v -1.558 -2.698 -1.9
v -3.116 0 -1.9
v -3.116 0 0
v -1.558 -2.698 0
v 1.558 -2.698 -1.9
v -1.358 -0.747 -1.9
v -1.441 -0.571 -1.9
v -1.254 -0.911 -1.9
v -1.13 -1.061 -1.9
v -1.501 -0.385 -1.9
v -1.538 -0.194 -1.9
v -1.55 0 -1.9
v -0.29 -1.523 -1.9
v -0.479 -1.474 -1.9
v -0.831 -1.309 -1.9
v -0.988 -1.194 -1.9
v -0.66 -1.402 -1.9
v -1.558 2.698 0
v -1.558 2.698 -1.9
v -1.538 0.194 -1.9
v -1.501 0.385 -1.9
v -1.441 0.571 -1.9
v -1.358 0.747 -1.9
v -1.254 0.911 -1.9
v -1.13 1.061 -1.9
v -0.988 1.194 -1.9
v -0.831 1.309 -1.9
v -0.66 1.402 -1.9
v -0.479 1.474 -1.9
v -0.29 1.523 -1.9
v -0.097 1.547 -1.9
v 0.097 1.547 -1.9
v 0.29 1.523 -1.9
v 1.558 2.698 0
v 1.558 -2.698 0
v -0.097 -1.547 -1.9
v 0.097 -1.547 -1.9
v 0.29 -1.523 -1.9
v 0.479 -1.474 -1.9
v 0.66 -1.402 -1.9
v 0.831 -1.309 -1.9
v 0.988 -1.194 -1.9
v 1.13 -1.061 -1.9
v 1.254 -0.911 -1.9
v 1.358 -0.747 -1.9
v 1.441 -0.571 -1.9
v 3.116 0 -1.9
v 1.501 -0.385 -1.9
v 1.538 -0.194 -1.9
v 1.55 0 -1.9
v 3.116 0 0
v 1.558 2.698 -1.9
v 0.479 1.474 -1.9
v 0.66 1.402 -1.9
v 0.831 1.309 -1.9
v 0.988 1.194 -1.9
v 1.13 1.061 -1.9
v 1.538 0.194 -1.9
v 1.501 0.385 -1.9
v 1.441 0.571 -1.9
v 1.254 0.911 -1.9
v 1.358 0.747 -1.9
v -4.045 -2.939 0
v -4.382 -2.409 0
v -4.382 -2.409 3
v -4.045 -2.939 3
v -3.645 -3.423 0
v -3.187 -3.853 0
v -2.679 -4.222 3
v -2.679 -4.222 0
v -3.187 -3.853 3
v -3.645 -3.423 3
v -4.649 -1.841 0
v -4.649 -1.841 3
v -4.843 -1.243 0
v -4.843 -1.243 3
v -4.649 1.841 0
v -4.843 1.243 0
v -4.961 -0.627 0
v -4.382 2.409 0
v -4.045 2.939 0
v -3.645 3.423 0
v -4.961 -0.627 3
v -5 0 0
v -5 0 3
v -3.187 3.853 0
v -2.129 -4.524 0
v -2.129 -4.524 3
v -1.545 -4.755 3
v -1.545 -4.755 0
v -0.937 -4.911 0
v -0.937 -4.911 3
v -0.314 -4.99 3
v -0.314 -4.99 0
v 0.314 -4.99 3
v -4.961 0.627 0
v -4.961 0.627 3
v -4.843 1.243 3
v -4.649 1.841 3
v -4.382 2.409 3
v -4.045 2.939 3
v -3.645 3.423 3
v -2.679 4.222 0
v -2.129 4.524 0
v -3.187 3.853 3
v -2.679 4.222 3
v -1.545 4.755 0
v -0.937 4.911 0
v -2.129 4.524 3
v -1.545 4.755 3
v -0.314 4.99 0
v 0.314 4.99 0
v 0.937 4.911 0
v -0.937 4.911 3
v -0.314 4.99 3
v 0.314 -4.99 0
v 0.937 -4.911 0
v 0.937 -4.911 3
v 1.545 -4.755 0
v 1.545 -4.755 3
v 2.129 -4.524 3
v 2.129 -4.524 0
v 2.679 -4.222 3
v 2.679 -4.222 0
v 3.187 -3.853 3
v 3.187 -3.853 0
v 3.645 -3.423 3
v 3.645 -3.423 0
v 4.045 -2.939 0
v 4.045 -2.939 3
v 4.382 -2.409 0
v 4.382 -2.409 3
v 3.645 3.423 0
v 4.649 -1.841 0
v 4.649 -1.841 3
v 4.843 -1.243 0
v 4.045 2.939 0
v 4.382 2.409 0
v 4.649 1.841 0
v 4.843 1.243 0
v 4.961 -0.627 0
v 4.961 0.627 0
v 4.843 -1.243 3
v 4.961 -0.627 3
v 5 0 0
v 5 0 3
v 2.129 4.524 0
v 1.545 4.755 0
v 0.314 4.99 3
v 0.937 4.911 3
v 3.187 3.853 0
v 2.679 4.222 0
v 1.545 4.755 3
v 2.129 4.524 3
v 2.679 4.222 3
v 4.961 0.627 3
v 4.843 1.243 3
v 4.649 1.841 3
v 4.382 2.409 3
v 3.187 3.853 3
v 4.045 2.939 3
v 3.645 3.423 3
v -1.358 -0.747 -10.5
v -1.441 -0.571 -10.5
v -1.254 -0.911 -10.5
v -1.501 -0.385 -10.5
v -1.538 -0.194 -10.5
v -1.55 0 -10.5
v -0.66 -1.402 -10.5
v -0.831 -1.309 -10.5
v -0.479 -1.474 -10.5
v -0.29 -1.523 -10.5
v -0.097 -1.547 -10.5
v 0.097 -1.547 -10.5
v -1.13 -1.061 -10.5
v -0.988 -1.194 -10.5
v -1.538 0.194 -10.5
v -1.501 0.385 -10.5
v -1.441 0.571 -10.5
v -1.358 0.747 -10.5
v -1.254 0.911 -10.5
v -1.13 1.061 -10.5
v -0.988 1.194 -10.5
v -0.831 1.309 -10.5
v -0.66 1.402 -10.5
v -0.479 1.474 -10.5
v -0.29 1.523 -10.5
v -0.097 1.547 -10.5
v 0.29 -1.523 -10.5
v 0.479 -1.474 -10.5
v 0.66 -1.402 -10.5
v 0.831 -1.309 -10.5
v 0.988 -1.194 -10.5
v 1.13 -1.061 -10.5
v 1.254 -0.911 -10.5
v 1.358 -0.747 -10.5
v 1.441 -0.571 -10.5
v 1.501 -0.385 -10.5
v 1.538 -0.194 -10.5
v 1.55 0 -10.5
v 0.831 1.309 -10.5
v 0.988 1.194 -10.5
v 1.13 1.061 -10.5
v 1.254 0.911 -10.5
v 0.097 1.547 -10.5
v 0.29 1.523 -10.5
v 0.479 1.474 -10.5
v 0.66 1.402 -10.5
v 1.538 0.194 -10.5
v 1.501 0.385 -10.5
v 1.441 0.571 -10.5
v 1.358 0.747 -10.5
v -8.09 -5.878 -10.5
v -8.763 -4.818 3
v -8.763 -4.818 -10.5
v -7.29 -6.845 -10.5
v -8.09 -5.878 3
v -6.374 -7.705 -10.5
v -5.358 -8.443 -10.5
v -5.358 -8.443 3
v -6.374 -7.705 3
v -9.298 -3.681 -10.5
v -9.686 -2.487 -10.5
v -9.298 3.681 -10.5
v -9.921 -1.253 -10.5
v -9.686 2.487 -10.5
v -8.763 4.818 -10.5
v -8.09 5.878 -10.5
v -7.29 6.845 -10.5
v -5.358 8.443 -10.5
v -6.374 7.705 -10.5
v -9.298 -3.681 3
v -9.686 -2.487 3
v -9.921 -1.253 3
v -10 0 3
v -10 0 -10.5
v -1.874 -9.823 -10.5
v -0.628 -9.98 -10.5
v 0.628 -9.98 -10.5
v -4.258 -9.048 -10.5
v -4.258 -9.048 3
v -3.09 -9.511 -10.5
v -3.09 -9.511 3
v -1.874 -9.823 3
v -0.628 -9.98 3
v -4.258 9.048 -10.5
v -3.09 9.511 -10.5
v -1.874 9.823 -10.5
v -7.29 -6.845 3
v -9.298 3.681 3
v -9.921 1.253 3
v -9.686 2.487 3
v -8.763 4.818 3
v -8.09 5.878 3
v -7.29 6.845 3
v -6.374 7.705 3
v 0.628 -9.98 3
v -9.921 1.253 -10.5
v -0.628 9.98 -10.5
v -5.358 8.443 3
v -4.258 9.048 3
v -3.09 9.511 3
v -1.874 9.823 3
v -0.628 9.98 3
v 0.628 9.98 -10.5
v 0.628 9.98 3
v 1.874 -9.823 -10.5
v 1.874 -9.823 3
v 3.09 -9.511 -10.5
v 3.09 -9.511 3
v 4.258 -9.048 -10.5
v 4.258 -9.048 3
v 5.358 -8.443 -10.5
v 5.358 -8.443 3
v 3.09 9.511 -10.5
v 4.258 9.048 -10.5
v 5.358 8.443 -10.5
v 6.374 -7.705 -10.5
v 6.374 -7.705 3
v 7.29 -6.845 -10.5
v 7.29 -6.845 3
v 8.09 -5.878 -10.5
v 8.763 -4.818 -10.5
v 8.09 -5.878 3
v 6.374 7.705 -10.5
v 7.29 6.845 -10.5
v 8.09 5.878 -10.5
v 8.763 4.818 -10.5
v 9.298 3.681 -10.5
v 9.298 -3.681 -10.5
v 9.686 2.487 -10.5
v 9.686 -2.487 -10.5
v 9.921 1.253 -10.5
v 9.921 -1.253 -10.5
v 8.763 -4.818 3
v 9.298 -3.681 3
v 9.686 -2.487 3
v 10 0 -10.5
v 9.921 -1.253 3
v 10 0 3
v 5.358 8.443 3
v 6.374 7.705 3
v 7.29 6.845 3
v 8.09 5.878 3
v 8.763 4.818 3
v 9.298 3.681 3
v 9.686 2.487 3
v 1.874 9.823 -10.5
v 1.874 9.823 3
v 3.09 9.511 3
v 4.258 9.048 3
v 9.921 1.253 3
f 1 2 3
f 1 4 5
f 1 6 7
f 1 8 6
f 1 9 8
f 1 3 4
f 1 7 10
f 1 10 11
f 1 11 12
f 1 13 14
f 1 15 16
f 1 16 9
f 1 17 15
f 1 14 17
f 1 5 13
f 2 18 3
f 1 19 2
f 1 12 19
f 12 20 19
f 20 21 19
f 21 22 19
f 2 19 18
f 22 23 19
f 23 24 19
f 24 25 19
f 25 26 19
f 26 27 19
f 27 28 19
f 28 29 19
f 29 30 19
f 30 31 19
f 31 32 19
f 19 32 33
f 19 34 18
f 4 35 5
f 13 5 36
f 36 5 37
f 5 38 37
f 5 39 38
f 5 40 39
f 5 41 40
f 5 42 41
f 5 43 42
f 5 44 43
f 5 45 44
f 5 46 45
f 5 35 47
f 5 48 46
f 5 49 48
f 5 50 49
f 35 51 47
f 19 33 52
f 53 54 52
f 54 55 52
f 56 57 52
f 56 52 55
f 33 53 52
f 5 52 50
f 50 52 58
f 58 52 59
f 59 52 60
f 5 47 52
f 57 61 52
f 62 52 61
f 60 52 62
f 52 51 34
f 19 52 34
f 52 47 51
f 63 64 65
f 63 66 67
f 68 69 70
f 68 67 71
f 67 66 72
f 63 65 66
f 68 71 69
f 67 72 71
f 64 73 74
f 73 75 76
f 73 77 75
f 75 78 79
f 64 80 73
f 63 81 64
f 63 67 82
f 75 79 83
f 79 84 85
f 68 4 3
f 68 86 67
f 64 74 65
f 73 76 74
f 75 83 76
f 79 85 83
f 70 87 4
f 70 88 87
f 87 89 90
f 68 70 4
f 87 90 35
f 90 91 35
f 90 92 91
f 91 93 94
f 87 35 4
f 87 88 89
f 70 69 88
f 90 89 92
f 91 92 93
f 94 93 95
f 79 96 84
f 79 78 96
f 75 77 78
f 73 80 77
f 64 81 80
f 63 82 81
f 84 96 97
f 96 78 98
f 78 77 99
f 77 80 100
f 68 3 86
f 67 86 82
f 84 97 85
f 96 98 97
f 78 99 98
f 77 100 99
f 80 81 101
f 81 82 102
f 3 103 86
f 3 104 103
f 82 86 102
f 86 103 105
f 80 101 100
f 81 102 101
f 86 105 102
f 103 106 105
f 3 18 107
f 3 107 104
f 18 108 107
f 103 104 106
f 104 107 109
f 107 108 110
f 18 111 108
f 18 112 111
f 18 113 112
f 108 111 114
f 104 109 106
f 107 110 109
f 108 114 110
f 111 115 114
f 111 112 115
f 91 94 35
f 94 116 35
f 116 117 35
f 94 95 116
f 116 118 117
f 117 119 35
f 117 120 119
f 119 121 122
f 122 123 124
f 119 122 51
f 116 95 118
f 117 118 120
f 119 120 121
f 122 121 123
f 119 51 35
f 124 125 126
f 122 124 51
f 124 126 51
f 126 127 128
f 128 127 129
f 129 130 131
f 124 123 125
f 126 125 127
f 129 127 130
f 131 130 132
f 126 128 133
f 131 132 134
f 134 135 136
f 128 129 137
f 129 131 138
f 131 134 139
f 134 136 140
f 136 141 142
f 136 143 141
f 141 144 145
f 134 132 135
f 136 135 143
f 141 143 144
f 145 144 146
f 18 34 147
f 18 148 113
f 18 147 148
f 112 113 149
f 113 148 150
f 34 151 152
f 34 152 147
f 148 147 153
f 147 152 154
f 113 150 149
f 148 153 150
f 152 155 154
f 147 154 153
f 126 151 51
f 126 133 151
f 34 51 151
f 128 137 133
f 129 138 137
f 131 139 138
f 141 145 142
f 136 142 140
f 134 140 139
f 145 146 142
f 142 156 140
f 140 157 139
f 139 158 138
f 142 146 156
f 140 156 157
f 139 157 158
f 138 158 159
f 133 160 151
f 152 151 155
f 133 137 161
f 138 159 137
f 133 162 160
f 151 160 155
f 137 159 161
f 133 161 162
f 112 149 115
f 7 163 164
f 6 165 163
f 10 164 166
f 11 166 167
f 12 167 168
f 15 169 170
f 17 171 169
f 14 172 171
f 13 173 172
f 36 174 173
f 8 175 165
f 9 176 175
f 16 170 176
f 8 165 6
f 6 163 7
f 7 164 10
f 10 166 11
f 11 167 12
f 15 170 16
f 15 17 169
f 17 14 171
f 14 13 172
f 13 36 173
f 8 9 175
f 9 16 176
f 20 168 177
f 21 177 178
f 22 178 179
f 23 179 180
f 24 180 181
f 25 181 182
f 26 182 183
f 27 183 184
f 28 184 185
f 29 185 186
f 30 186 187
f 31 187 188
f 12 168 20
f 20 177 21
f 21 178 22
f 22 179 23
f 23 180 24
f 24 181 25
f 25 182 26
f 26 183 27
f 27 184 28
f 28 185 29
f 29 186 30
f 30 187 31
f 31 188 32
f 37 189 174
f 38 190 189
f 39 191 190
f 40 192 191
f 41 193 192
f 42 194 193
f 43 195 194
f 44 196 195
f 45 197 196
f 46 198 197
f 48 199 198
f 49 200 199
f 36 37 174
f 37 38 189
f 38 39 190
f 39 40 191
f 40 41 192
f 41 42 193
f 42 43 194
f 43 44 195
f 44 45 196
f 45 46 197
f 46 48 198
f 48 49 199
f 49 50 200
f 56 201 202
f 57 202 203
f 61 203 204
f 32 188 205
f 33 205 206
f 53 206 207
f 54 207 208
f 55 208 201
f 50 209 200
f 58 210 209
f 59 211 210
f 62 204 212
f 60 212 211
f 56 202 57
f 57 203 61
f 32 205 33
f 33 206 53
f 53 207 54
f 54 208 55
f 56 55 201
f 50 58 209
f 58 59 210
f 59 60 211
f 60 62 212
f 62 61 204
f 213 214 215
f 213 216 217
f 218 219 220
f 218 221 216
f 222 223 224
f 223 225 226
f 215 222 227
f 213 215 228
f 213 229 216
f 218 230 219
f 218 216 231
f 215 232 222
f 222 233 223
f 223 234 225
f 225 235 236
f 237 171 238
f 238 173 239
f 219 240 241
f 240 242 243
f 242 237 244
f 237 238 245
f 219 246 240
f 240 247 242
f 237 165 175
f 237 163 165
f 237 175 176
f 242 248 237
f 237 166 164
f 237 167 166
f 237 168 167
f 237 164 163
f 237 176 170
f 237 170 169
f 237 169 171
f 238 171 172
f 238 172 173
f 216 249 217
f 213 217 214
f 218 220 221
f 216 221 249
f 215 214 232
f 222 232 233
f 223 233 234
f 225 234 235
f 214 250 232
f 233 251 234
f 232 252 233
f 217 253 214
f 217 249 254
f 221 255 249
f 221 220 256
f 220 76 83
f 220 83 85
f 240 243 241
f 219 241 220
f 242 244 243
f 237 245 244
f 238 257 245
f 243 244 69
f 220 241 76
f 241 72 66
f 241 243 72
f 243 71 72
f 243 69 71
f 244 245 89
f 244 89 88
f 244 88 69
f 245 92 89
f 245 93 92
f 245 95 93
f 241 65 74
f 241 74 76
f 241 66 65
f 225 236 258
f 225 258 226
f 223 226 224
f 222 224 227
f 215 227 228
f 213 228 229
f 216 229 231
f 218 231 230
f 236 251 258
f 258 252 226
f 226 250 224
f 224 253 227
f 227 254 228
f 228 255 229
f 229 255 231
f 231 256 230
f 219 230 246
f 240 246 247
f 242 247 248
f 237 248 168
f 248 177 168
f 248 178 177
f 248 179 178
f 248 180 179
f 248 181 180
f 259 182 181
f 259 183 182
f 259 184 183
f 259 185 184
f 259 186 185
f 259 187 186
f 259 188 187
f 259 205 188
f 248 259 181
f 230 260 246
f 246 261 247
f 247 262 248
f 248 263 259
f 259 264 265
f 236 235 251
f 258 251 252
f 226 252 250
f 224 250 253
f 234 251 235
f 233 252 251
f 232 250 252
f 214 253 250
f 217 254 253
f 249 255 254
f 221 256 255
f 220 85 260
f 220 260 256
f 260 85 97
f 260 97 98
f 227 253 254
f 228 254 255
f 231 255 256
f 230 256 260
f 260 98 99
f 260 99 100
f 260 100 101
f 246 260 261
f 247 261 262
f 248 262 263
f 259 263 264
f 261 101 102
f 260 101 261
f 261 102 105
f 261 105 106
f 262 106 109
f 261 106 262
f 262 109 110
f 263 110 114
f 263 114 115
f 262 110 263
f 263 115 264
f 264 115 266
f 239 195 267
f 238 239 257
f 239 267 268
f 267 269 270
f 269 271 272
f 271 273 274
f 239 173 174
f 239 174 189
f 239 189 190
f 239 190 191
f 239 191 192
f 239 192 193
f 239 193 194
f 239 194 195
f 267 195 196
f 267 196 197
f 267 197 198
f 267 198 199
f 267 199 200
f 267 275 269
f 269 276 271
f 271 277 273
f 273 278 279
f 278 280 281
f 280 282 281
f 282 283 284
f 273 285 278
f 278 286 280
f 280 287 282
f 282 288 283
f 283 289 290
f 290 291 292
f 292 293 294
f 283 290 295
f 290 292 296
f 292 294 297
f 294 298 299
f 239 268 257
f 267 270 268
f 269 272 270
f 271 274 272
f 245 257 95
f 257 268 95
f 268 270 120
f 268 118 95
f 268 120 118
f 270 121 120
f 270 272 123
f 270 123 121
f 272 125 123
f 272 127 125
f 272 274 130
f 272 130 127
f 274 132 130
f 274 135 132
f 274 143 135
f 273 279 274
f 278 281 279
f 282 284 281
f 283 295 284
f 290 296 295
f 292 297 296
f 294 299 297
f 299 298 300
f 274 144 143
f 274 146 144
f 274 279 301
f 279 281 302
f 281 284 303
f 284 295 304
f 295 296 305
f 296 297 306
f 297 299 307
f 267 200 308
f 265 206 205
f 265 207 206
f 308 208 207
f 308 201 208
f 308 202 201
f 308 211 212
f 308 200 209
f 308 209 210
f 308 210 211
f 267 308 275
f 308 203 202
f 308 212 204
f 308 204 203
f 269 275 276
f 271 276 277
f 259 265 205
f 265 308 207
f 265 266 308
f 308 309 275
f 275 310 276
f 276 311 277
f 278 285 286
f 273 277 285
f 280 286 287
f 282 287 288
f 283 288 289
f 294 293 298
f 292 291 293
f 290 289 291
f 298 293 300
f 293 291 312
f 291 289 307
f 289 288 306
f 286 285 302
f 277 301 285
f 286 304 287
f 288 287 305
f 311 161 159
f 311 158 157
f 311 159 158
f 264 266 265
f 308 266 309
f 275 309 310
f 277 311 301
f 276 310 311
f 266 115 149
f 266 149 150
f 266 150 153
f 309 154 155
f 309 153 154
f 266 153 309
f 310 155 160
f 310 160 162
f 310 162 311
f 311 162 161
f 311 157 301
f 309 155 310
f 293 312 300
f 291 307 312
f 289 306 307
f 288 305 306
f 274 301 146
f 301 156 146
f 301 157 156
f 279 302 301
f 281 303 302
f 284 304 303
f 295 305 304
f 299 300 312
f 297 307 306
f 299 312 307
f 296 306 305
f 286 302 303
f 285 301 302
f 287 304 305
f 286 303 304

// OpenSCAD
$fn = 50;

difference() {
	union() {
		translate(v = [0, 0, -10.5]) {
			cylinder(h = 13.5, r = 10.0);
		}
	}
	union() {
		translate(v = [0, 0, 0]) {
			rotate(a = [0, 0, 0]) {
				difference() {
					union() {
						translate(v = [0, 0, -1.9]) {
							linear_extrude(height = 1.9) {
								polygon(points = [[3.1158, 0.0], [1.5579000000000005, 2.698361953111554], [-1.5578999999999994, 2.6983619531115544], [-3.1158, 3.815754496783323e-16], [-1.5579000000000014, -2.6983619531115535], [1.557899999999998, -2.6983619531115552]]);
							}
						}
					}
					union();
				}
			}
		}
		#cylinder(h = 3, r = 5.0);
		#translate(v = [0, 0, -100.0]) {
			cylinder(h = 200, r = 1.55);
		}
	}
}
